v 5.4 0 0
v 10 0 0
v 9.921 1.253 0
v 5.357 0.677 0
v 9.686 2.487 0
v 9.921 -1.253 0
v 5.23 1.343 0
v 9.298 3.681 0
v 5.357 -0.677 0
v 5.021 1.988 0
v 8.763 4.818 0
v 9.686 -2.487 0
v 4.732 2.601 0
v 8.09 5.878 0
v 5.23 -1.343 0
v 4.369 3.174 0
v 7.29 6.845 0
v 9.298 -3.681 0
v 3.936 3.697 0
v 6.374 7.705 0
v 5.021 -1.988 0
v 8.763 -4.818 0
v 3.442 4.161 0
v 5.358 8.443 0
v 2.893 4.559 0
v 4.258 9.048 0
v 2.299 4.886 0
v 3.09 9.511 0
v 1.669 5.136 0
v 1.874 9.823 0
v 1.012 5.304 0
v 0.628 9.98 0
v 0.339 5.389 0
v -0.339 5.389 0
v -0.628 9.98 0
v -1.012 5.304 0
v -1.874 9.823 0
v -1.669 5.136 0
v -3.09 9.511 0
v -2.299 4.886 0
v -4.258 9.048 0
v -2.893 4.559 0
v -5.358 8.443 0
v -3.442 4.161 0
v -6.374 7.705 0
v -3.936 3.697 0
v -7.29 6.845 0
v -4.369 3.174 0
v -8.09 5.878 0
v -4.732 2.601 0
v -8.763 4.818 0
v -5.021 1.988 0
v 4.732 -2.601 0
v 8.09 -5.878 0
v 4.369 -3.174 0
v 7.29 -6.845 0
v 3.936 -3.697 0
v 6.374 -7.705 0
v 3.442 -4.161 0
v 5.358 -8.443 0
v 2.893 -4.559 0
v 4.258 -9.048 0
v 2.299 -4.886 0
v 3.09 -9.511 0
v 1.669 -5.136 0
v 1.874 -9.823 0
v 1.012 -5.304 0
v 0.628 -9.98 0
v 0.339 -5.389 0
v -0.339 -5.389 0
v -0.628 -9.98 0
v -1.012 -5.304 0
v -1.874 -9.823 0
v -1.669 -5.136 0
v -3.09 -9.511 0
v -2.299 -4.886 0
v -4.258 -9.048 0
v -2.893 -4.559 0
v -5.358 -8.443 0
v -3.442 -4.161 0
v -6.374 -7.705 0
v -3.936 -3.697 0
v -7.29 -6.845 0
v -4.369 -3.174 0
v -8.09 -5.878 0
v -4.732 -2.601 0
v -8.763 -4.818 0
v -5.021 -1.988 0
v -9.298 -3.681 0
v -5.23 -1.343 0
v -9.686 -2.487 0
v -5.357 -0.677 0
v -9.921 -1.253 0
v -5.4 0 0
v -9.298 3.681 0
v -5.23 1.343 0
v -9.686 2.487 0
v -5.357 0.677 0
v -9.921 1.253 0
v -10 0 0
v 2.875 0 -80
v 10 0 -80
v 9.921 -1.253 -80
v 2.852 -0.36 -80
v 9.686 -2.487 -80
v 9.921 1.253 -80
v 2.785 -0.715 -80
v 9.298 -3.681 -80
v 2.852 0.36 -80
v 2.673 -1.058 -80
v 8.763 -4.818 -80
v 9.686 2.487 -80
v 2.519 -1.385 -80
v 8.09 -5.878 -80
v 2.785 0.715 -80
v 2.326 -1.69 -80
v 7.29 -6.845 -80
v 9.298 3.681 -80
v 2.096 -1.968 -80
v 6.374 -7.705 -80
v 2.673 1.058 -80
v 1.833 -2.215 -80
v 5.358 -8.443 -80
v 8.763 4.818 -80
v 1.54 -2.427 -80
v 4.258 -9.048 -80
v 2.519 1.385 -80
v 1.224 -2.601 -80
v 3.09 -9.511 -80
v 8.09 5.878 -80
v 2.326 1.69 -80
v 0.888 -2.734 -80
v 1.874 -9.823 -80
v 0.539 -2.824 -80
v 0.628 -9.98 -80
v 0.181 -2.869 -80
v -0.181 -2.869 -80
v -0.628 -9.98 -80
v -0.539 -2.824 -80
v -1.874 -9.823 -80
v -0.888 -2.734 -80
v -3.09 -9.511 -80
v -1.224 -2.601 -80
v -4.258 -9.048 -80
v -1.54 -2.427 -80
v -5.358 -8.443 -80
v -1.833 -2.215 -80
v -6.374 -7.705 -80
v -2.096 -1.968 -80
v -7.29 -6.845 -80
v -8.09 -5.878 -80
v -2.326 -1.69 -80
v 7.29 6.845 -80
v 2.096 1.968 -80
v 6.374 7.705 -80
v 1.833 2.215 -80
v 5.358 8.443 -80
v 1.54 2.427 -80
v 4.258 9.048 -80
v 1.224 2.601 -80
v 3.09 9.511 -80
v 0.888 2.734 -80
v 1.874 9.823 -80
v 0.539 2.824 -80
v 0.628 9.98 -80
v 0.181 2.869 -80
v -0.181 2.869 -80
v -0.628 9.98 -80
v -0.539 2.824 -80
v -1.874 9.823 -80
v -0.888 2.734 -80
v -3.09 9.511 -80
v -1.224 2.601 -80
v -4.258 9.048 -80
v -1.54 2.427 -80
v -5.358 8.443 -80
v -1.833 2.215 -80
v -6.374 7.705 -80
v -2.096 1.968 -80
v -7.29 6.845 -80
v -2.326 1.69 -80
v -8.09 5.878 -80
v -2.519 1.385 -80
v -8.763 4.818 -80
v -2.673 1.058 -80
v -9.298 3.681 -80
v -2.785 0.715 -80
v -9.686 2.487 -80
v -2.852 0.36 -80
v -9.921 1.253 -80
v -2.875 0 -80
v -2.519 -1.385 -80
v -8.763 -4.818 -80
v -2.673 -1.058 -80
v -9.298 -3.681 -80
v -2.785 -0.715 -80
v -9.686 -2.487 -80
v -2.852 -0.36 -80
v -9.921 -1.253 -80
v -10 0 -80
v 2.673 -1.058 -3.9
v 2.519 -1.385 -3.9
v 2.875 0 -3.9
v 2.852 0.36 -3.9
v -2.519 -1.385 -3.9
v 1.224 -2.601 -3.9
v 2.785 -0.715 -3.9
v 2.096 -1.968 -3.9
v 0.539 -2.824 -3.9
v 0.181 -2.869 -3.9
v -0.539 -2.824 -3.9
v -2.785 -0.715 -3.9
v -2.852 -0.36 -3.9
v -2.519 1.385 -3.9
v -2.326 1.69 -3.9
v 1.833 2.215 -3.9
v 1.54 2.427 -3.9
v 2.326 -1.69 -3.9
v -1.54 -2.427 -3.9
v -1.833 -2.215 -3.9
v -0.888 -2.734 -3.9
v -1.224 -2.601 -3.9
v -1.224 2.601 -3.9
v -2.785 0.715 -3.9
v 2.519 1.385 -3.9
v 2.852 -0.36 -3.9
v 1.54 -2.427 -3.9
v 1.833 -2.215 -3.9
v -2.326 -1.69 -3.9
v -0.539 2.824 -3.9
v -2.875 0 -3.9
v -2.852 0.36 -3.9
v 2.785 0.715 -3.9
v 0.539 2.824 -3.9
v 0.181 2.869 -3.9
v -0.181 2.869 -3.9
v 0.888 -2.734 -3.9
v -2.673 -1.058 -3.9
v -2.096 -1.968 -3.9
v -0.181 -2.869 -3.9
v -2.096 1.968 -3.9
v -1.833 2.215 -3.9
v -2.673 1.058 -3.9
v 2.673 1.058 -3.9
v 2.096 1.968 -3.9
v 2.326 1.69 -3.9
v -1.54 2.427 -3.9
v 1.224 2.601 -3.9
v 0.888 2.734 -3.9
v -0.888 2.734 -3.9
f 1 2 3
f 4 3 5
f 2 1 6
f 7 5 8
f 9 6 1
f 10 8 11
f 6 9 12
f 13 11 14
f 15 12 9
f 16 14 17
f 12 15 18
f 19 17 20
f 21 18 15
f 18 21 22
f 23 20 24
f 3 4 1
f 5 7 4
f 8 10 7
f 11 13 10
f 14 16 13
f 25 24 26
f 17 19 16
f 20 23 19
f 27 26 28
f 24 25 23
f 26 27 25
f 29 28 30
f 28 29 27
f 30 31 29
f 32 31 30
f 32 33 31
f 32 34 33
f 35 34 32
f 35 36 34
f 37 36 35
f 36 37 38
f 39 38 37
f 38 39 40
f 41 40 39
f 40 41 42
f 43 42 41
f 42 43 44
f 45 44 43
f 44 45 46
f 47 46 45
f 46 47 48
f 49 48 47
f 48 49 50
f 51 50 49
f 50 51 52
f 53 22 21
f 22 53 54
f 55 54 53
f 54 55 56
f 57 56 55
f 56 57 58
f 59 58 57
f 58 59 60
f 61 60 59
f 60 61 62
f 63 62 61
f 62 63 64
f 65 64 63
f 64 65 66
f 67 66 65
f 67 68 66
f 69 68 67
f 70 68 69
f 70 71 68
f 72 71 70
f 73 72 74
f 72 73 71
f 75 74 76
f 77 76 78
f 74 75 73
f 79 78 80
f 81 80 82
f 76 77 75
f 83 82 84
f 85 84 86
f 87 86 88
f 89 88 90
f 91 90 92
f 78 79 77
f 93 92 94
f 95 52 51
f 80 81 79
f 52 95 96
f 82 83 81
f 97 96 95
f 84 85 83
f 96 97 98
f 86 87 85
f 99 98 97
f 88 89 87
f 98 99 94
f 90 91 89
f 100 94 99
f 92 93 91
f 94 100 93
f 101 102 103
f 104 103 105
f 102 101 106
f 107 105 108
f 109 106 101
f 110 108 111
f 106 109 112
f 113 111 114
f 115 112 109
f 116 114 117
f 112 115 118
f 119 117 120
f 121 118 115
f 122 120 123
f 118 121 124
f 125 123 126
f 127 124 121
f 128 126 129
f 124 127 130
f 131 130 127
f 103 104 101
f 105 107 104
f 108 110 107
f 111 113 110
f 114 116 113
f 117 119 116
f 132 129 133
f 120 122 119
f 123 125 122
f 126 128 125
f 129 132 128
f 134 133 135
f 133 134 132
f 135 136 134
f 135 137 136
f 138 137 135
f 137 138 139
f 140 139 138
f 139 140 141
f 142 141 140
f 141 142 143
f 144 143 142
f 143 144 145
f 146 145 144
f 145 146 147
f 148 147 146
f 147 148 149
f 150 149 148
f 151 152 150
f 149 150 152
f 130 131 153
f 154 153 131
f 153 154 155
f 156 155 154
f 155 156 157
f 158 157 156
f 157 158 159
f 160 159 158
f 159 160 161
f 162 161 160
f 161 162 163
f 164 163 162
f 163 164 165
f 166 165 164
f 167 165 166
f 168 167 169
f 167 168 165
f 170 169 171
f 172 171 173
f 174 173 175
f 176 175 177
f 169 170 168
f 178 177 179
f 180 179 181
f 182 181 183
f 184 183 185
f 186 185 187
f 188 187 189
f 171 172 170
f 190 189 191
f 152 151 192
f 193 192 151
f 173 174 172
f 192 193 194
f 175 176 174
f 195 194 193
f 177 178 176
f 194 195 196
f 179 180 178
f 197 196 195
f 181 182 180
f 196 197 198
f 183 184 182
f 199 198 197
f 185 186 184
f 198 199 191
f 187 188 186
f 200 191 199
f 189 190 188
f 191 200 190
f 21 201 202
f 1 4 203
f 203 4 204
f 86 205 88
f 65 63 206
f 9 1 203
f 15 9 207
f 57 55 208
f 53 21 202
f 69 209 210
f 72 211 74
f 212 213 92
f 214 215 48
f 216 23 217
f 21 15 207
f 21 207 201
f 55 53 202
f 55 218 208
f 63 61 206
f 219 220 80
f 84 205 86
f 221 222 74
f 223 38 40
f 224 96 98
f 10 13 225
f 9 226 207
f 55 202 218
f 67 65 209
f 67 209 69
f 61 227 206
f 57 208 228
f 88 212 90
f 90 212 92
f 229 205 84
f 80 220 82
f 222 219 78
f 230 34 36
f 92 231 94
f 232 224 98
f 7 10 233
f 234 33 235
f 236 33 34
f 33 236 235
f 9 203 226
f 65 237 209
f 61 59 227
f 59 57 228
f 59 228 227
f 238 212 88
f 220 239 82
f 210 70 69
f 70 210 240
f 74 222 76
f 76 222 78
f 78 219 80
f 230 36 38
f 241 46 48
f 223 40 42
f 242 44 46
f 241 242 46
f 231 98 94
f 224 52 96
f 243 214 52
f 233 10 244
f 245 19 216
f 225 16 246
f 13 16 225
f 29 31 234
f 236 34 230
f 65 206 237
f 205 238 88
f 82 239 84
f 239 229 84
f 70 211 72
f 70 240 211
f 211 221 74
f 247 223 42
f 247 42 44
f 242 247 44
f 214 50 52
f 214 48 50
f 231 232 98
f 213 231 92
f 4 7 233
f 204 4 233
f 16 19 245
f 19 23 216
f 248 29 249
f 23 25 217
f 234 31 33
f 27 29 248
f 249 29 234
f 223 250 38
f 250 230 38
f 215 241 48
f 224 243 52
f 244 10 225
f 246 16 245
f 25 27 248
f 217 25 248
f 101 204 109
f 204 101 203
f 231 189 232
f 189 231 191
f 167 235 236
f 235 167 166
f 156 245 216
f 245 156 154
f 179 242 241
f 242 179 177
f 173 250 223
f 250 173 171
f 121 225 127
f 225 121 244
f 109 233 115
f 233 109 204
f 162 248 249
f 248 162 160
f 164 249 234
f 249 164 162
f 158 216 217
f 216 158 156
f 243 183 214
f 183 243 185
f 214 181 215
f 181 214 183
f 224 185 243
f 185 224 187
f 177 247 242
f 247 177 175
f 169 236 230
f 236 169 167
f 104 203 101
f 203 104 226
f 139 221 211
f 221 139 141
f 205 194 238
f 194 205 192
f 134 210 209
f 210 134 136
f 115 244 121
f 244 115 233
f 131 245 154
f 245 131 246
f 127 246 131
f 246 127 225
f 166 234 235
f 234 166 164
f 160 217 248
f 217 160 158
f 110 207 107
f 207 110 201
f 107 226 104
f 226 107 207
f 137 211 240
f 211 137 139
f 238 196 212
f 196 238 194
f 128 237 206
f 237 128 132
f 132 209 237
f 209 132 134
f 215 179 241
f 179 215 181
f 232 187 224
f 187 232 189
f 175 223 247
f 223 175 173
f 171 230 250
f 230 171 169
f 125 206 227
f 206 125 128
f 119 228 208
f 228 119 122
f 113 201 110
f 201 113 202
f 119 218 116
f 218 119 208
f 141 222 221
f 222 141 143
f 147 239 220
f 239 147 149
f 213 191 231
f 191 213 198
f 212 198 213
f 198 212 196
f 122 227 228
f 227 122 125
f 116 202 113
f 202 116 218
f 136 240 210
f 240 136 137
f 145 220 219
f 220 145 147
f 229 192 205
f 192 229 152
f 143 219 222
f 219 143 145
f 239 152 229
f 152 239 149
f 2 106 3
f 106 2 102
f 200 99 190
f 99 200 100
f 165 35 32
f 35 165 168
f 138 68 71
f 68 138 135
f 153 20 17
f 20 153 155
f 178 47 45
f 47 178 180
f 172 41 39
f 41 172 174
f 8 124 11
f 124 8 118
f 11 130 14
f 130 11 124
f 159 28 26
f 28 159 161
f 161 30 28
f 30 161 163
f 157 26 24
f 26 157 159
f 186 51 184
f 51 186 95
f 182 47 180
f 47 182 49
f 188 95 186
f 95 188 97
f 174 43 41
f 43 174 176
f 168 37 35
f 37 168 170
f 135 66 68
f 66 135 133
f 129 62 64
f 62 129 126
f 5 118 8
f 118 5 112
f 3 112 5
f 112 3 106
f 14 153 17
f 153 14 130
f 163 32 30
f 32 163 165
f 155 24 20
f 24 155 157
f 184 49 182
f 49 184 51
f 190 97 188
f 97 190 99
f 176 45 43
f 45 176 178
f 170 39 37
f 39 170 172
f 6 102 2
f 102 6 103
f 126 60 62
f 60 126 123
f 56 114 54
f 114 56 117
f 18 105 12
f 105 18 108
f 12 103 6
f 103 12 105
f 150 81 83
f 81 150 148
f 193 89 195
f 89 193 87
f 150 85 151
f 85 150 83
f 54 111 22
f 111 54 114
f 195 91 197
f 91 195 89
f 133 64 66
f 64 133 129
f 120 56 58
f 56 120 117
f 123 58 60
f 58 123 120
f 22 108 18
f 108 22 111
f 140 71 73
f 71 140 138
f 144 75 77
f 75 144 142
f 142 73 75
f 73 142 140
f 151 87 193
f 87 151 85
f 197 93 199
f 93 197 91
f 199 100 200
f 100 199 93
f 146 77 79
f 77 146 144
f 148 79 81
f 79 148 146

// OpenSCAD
$fn = 50;


difference() {
	union() {
		translate(v = [0, 0, -80.0000000000]) {
			cylinder(h = 80, r = 10.0000000000);
		}
		cylinder(h = 0, r = 16.0000000000);
	}
	union() {
		translate(v = [0, 0, 0]) {
			rotate(a = [0, 0, 0]) {
				difference() {
					union() {
						#translate(v = [0, 0, -80.0000000000]) {
							cylinder(h = 80, r = 2.6000000000);
						}
						#translate(v = [0, 0, -3.9000000000]) {
							cylinder(h = 3.9000000000, r = 10.0000000000, r1 = 2.8750000000, r2 = 5.4000000000);
						}
						#translate(v = [0, 0, -80.0000000000]) {
							cylinder(h = 80, r = 2.8750000000);
						}
						#translate(v = [0, 0, -80.0000000000]) {
							cylinder(h = 80, r = 2.6000000000);
						}
					}
					union();
				}
			}
		}
	}
}
